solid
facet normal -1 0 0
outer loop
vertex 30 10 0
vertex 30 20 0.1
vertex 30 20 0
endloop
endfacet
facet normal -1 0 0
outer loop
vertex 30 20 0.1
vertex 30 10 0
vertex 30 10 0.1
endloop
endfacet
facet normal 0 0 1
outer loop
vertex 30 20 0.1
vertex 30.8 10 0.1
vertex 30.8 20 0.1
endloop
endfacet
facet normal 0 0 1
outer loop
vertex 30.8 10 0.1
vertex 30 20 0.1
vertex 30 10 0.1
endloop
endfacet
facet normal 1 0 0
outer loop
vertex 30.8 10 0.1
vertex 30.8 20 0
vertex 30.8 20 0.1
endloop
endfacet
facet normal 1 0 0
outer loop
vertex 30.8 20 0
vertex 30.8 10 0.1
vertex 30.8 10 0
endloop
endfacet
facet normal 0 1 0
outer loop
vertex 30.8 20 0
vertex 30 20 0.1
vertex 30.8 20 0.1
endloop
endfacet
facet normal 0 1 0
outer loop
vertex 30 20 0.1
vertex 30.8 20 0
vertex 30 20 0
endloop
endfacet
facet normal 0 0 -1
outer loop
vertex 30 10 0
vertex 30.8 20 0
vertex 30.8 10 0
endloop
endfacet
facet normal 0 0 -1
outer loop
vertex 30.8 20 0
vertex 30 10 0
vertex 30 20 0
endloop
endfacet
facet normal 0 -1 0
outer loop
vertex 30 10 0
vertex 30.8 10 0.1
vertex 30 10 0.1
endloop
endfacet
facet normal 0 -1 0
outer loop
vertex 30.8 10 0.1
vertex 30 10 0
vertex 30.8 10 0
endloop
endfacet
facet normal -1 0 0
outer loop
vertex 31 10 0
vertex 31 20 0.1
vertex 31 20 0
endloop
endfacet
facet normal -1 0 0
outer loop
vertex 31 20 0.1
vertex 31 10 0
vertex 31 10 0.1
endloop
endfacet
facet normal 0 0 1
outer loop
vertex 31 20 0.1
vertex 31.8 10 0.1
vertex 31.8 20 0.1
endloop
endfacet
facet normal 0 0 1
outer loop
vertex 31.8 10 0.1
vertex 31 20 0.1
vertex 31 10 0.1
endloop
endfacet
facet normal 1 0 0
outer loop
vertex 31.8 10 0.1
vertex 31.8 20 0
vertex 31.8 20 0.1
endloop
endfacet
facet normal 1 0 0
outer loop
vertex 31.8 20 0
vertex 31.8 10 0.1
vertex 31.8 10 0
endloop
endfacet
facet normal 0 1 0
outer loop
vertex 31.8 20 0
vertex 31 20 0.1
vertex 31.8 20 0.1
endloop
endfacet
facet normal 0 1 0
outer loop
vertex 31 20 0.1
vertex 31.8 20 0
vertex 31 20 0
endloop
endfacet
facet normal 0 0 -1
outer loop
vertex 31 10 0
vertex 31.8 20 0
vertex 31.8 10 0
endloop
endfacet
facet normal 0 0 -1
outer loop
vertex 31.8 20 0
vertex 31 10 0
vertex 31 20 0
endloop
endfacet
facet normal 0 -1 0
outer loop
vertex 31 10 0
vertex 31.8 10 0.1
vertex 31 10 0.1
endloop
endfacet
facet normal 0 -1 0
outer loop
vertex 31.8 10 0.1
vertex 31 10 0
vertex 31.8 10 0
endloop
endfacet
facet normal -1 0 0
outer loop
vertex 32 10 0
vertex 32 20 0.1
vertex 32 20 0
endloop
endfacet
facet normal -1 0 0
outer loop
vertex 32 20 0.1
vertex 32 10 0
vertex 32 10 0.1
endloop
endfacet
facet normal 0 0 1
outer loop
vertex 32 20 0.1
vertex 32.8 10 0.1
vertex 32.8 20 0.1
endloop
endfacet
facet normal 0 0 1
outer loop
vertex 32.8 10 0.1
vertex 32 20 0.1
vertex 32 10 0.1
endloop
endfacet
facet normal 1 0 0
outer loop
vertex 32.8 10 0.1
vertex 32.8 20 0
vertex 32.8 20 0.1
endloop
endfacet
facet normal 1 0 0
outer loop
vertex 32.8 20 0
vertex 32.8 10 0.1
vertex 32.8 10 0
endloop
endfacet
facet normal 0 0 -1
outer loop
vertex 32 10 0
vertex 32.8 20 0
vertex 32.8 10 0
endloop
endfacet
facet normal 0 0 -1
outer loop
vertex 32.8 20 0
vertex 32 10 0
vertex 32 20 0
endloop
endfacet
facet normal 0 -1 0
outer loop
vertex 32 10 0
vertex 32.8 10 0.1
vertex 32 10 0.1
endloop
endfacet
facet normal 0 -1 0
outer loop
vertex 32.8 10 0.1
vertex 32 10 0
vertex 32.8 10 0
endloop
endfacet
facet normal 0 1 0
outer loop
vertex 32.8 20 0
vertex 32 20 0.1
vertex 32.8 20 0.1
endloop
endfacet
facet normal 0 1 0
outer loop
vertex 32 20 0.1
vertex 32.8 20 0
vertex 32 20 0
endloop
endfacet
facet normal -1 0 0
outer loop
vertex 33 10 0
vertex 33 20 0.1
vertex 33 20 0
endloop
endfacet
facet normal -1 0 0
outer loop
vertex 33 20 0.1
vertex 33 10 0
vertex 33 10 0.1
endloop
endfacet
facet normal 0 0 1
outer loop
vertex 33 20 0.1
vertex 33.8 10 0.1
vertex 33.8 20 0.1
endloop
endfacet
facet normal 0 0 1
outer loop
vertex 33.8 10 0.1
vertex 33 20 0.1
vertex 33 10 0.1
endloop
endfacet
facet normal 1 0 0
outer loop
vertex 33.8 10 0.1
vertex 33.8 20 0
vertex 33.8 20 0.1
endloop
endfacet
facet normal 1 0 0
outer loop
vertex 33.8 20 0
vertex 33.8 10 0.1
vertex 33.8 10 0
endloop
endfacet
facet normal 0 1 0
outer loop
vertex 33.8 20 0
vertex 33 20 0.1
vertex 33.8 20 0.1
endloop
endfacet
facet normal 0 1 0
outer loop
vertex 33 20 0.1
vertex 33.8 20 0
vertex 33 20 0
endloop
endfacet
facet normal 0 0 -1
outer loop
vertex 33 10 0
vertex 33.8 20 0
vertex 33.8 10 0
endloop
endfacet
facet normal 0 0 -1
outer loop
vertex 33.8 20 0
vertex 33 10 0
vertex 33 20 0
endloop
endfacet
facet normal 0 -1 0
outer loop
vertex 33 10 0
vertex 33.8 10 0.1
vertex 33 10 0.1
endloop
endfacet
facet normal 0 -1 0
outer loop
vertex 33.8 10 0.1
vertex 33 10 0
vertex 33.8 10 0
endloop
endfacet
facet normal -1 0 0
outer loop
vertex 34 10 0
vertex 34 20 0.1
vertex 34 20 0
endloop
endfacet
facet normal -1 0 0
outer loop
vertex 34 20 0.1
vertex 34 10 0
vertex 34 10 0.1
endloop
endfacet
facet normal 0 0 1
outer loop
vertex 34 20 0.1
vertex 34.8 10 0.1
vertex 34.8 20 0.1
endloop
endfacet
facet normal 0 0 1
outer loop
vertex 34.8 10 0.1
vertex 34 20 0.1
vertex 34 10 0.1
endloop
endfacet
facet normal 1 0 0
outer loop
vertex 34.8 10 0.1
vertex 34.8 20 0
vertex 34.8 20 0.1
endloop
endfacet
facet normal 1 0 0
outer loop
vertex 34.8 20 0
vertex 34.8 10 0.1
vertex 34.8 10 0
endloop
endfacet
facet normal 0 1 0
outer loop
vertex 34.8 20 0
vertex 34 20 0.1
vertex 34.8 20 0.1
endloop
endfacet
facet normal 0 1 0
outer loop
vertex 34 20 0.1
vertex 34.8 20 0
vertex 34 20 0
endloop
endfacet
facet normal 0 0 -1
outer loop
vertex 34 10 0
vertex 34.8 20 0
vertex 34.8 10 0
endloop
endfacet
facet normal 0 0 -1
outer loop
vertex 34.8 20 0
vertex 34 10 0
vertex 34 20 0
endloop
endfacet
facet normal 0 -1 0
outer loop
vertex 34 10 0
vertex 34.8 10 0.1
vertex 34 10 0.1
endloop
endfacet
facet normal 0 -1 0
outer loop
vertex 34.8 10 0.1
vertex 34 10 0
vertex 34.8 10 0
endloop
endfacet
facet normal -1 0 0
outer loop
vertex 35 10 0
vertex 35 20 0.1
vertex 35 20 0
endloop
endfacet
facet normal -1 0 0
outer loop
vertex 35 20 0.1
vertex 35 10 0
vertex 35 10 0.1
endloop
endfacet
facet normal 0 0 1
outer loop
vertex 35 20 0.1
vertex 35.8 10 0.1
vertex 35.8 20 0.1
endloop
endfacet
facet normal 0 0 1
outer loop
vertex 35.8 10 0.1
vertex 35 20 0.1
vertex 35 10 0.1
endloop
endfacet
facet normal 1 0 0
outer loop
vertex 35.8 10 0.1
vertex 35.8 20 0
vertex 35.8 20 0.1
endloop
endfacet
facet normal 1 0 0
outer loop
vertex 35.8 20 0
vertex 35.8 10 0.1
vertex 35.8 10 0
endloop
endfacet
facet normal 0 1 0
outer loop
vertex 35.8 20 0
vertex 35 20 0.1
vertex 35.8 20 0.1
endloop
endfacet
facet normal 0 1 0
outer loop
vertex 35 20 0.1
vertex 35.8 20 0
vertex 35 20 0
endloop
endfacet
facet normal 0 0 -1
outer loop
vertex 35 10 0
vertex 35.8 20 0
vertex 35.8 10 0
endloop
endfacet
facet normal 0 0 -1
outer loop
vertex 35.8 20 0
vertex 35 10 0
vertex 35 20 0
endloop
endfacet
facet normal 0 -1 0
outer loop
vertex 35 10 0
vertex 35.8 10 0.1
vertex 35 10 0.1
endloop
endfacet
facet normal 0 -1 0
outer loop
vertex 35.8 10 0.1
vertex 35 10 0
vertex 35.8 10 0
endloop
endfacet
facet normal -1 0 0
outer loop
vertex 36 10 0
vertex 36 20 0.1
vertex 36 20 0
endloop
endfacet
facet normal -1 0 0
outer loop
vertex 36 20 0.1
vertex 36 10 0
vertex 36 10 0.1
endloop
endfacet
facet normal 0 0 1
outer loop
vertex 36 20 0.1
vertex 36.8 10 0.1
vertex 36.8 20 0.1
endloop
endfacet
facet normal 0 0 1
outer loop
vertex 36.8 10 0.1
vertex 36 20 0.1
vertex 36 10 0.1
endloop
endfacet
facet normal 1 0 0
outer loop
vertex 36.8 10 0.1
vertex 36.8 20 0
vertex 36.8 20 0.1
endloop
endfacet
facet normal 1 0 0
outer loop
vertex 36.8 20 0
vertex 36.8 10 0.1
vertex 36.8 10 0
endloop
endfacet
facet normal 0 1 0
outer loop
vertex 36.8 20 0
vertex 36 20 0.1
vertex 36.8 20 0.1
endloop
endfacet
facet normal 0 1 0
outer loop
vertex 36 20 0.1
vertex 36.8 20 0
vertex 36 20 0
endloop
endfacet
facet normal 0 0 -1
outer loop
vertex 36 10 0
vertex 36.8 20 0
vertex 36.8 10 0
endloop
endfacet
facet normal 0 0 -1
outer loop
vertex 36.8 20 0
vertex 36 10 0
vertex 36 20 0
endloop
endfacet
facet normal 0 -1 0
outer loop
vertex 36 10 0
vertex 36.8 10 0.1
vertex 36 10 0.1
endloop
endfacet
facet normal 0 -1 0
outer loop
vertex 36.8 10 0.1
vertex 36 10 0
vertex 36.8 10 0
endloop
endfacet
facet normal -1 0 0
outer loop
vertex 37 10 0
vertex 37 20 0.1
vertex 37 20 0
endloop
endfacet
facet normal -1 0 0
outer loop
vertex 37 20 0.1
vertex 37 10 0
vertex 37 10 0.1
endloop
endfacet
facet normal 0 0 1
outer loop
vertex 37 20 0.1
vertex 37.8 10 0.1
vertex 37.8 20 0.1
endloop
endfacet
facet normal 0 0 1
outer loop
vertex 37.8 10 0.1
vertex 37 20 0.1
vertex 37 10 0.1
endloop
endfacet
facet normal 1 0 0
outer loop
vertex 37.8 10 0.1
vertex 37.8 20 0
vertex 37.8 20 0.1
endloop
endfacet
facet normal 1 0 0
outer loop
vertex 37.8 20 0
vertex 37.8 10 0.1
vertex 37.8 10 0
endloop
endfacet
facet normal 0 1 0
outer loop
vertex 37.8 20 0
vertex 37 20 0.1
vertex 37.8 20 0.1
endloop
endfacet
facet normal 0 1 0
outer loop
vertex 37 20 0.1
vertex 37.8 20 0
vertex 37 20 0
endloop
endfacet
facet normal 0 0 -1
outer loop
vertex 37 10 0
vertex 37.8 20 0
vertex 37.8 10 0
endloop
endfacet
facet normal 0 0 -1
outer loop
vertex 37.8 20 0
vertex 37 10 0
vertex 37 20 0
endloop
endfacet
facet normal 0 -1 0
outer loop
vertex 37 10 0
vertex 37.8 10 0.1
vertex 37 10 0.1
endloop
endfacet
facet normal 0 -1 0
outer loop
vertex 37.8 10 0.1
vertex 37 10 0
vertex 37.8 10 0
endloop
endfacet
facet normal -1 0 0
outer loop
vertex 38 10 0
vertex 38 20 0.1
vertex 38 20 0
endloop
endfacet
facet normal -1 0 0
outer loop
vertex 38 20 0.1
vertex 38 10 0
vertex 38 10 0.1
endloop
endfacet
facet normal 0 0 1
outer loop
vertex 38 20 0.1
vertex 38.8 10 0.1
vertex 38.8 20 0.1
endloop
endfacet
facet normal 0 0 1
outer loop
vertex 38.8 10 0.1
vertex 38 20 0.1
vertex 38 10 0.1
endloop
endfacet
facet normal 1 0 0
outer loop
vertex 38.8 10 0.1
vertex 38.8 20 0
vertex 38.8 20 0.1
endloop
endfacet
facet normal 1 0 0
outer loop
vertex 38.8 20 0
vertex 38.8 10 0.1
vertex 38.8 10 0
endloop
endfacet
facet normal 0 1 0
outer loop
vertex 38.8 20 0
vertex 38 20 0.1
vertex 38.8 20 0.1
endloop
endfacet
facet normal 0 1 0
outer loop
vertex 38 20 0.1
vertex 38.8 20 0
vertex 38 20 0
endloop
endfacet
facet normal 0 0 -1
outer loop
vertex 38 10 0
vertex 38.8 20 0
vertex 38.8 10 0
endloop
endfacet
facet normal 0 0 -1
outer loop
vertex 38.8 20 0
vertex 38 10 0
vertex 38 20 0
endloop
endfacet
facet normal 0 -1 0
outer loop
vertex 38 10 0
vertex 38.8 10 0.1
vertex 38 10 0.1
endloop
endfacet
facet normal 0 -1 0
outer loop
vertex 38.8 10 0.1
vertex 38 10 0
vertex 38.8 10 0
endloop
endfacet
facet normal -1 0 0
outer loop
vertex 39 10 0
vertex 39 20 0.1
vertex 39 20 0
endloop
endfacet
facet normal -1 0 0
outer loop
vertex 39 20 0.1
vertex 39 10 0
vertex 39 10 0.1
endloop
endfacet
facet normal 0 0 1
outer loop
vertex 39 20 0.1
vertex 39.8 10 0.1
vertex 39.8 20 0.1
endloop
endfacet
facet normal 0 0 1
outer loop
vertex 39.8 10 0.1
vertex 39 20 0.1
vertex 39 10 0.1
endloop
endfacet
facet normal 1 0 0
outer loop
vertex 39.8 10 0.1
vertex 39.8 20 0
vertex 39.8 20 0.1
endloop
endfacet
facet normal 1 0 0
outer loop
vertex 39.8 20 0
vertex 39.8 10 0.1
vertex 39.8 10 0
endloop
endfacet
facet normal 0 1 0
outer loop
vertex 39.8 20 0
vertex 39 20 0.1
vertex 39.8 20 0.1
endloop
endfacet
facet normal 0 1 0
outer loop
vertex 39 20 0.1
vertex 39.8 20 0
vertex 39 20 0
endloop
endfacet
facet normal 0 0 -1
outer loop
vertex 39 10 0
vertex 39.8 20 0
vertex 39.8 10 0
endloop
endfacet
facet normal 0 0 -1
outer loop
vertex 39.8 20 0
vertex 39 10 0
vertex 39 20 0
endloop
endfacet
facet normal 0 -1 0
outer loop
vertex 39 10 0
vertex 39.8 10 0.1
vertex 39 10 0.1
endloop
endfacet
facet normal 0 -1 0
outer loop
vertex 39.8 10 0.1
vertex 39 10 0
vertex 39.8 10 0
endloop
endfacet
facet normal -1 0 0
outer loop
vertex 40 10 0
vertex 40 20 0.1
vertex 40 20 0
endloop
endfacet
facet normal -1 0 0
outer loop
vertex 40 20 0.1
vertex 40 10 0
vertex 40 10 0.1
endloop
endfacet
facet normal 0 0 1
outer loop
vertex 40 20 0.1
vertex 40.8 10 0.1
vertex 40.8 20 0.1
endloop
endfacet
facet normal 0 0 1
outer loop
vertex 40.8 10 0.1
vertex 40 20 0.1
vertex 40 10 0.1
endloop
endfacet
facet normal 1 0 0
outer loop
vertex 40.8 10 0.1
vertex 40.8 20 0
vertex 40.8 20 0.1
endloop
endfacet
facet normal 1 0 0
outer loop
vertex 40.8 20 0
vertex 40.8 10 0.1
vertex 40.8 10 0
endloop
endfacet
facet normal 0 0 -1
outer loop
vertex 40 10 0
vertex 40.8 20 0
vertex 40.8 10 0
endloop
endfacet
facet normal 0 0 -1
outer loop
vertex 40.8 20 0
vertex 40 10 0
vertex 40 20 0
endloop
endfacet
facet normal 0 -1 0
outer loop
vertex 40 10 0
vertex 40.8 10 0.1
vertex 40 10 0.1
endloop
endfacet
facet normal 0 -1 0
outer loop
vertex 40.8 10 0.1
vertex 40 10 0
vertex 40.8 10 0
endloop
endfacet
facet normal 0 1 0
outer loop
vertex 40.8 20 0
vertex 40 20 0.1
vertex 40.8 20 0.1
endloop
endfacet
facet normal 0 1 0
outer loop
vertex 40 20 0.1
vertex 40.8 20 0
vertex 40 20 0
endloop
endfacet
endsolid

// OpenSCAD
translate([10+20,10+0,0])
        for (i = [0 : 10]){
            translate([i,0,0])
                cube(size = [0.8,10,0.1]);
    }
